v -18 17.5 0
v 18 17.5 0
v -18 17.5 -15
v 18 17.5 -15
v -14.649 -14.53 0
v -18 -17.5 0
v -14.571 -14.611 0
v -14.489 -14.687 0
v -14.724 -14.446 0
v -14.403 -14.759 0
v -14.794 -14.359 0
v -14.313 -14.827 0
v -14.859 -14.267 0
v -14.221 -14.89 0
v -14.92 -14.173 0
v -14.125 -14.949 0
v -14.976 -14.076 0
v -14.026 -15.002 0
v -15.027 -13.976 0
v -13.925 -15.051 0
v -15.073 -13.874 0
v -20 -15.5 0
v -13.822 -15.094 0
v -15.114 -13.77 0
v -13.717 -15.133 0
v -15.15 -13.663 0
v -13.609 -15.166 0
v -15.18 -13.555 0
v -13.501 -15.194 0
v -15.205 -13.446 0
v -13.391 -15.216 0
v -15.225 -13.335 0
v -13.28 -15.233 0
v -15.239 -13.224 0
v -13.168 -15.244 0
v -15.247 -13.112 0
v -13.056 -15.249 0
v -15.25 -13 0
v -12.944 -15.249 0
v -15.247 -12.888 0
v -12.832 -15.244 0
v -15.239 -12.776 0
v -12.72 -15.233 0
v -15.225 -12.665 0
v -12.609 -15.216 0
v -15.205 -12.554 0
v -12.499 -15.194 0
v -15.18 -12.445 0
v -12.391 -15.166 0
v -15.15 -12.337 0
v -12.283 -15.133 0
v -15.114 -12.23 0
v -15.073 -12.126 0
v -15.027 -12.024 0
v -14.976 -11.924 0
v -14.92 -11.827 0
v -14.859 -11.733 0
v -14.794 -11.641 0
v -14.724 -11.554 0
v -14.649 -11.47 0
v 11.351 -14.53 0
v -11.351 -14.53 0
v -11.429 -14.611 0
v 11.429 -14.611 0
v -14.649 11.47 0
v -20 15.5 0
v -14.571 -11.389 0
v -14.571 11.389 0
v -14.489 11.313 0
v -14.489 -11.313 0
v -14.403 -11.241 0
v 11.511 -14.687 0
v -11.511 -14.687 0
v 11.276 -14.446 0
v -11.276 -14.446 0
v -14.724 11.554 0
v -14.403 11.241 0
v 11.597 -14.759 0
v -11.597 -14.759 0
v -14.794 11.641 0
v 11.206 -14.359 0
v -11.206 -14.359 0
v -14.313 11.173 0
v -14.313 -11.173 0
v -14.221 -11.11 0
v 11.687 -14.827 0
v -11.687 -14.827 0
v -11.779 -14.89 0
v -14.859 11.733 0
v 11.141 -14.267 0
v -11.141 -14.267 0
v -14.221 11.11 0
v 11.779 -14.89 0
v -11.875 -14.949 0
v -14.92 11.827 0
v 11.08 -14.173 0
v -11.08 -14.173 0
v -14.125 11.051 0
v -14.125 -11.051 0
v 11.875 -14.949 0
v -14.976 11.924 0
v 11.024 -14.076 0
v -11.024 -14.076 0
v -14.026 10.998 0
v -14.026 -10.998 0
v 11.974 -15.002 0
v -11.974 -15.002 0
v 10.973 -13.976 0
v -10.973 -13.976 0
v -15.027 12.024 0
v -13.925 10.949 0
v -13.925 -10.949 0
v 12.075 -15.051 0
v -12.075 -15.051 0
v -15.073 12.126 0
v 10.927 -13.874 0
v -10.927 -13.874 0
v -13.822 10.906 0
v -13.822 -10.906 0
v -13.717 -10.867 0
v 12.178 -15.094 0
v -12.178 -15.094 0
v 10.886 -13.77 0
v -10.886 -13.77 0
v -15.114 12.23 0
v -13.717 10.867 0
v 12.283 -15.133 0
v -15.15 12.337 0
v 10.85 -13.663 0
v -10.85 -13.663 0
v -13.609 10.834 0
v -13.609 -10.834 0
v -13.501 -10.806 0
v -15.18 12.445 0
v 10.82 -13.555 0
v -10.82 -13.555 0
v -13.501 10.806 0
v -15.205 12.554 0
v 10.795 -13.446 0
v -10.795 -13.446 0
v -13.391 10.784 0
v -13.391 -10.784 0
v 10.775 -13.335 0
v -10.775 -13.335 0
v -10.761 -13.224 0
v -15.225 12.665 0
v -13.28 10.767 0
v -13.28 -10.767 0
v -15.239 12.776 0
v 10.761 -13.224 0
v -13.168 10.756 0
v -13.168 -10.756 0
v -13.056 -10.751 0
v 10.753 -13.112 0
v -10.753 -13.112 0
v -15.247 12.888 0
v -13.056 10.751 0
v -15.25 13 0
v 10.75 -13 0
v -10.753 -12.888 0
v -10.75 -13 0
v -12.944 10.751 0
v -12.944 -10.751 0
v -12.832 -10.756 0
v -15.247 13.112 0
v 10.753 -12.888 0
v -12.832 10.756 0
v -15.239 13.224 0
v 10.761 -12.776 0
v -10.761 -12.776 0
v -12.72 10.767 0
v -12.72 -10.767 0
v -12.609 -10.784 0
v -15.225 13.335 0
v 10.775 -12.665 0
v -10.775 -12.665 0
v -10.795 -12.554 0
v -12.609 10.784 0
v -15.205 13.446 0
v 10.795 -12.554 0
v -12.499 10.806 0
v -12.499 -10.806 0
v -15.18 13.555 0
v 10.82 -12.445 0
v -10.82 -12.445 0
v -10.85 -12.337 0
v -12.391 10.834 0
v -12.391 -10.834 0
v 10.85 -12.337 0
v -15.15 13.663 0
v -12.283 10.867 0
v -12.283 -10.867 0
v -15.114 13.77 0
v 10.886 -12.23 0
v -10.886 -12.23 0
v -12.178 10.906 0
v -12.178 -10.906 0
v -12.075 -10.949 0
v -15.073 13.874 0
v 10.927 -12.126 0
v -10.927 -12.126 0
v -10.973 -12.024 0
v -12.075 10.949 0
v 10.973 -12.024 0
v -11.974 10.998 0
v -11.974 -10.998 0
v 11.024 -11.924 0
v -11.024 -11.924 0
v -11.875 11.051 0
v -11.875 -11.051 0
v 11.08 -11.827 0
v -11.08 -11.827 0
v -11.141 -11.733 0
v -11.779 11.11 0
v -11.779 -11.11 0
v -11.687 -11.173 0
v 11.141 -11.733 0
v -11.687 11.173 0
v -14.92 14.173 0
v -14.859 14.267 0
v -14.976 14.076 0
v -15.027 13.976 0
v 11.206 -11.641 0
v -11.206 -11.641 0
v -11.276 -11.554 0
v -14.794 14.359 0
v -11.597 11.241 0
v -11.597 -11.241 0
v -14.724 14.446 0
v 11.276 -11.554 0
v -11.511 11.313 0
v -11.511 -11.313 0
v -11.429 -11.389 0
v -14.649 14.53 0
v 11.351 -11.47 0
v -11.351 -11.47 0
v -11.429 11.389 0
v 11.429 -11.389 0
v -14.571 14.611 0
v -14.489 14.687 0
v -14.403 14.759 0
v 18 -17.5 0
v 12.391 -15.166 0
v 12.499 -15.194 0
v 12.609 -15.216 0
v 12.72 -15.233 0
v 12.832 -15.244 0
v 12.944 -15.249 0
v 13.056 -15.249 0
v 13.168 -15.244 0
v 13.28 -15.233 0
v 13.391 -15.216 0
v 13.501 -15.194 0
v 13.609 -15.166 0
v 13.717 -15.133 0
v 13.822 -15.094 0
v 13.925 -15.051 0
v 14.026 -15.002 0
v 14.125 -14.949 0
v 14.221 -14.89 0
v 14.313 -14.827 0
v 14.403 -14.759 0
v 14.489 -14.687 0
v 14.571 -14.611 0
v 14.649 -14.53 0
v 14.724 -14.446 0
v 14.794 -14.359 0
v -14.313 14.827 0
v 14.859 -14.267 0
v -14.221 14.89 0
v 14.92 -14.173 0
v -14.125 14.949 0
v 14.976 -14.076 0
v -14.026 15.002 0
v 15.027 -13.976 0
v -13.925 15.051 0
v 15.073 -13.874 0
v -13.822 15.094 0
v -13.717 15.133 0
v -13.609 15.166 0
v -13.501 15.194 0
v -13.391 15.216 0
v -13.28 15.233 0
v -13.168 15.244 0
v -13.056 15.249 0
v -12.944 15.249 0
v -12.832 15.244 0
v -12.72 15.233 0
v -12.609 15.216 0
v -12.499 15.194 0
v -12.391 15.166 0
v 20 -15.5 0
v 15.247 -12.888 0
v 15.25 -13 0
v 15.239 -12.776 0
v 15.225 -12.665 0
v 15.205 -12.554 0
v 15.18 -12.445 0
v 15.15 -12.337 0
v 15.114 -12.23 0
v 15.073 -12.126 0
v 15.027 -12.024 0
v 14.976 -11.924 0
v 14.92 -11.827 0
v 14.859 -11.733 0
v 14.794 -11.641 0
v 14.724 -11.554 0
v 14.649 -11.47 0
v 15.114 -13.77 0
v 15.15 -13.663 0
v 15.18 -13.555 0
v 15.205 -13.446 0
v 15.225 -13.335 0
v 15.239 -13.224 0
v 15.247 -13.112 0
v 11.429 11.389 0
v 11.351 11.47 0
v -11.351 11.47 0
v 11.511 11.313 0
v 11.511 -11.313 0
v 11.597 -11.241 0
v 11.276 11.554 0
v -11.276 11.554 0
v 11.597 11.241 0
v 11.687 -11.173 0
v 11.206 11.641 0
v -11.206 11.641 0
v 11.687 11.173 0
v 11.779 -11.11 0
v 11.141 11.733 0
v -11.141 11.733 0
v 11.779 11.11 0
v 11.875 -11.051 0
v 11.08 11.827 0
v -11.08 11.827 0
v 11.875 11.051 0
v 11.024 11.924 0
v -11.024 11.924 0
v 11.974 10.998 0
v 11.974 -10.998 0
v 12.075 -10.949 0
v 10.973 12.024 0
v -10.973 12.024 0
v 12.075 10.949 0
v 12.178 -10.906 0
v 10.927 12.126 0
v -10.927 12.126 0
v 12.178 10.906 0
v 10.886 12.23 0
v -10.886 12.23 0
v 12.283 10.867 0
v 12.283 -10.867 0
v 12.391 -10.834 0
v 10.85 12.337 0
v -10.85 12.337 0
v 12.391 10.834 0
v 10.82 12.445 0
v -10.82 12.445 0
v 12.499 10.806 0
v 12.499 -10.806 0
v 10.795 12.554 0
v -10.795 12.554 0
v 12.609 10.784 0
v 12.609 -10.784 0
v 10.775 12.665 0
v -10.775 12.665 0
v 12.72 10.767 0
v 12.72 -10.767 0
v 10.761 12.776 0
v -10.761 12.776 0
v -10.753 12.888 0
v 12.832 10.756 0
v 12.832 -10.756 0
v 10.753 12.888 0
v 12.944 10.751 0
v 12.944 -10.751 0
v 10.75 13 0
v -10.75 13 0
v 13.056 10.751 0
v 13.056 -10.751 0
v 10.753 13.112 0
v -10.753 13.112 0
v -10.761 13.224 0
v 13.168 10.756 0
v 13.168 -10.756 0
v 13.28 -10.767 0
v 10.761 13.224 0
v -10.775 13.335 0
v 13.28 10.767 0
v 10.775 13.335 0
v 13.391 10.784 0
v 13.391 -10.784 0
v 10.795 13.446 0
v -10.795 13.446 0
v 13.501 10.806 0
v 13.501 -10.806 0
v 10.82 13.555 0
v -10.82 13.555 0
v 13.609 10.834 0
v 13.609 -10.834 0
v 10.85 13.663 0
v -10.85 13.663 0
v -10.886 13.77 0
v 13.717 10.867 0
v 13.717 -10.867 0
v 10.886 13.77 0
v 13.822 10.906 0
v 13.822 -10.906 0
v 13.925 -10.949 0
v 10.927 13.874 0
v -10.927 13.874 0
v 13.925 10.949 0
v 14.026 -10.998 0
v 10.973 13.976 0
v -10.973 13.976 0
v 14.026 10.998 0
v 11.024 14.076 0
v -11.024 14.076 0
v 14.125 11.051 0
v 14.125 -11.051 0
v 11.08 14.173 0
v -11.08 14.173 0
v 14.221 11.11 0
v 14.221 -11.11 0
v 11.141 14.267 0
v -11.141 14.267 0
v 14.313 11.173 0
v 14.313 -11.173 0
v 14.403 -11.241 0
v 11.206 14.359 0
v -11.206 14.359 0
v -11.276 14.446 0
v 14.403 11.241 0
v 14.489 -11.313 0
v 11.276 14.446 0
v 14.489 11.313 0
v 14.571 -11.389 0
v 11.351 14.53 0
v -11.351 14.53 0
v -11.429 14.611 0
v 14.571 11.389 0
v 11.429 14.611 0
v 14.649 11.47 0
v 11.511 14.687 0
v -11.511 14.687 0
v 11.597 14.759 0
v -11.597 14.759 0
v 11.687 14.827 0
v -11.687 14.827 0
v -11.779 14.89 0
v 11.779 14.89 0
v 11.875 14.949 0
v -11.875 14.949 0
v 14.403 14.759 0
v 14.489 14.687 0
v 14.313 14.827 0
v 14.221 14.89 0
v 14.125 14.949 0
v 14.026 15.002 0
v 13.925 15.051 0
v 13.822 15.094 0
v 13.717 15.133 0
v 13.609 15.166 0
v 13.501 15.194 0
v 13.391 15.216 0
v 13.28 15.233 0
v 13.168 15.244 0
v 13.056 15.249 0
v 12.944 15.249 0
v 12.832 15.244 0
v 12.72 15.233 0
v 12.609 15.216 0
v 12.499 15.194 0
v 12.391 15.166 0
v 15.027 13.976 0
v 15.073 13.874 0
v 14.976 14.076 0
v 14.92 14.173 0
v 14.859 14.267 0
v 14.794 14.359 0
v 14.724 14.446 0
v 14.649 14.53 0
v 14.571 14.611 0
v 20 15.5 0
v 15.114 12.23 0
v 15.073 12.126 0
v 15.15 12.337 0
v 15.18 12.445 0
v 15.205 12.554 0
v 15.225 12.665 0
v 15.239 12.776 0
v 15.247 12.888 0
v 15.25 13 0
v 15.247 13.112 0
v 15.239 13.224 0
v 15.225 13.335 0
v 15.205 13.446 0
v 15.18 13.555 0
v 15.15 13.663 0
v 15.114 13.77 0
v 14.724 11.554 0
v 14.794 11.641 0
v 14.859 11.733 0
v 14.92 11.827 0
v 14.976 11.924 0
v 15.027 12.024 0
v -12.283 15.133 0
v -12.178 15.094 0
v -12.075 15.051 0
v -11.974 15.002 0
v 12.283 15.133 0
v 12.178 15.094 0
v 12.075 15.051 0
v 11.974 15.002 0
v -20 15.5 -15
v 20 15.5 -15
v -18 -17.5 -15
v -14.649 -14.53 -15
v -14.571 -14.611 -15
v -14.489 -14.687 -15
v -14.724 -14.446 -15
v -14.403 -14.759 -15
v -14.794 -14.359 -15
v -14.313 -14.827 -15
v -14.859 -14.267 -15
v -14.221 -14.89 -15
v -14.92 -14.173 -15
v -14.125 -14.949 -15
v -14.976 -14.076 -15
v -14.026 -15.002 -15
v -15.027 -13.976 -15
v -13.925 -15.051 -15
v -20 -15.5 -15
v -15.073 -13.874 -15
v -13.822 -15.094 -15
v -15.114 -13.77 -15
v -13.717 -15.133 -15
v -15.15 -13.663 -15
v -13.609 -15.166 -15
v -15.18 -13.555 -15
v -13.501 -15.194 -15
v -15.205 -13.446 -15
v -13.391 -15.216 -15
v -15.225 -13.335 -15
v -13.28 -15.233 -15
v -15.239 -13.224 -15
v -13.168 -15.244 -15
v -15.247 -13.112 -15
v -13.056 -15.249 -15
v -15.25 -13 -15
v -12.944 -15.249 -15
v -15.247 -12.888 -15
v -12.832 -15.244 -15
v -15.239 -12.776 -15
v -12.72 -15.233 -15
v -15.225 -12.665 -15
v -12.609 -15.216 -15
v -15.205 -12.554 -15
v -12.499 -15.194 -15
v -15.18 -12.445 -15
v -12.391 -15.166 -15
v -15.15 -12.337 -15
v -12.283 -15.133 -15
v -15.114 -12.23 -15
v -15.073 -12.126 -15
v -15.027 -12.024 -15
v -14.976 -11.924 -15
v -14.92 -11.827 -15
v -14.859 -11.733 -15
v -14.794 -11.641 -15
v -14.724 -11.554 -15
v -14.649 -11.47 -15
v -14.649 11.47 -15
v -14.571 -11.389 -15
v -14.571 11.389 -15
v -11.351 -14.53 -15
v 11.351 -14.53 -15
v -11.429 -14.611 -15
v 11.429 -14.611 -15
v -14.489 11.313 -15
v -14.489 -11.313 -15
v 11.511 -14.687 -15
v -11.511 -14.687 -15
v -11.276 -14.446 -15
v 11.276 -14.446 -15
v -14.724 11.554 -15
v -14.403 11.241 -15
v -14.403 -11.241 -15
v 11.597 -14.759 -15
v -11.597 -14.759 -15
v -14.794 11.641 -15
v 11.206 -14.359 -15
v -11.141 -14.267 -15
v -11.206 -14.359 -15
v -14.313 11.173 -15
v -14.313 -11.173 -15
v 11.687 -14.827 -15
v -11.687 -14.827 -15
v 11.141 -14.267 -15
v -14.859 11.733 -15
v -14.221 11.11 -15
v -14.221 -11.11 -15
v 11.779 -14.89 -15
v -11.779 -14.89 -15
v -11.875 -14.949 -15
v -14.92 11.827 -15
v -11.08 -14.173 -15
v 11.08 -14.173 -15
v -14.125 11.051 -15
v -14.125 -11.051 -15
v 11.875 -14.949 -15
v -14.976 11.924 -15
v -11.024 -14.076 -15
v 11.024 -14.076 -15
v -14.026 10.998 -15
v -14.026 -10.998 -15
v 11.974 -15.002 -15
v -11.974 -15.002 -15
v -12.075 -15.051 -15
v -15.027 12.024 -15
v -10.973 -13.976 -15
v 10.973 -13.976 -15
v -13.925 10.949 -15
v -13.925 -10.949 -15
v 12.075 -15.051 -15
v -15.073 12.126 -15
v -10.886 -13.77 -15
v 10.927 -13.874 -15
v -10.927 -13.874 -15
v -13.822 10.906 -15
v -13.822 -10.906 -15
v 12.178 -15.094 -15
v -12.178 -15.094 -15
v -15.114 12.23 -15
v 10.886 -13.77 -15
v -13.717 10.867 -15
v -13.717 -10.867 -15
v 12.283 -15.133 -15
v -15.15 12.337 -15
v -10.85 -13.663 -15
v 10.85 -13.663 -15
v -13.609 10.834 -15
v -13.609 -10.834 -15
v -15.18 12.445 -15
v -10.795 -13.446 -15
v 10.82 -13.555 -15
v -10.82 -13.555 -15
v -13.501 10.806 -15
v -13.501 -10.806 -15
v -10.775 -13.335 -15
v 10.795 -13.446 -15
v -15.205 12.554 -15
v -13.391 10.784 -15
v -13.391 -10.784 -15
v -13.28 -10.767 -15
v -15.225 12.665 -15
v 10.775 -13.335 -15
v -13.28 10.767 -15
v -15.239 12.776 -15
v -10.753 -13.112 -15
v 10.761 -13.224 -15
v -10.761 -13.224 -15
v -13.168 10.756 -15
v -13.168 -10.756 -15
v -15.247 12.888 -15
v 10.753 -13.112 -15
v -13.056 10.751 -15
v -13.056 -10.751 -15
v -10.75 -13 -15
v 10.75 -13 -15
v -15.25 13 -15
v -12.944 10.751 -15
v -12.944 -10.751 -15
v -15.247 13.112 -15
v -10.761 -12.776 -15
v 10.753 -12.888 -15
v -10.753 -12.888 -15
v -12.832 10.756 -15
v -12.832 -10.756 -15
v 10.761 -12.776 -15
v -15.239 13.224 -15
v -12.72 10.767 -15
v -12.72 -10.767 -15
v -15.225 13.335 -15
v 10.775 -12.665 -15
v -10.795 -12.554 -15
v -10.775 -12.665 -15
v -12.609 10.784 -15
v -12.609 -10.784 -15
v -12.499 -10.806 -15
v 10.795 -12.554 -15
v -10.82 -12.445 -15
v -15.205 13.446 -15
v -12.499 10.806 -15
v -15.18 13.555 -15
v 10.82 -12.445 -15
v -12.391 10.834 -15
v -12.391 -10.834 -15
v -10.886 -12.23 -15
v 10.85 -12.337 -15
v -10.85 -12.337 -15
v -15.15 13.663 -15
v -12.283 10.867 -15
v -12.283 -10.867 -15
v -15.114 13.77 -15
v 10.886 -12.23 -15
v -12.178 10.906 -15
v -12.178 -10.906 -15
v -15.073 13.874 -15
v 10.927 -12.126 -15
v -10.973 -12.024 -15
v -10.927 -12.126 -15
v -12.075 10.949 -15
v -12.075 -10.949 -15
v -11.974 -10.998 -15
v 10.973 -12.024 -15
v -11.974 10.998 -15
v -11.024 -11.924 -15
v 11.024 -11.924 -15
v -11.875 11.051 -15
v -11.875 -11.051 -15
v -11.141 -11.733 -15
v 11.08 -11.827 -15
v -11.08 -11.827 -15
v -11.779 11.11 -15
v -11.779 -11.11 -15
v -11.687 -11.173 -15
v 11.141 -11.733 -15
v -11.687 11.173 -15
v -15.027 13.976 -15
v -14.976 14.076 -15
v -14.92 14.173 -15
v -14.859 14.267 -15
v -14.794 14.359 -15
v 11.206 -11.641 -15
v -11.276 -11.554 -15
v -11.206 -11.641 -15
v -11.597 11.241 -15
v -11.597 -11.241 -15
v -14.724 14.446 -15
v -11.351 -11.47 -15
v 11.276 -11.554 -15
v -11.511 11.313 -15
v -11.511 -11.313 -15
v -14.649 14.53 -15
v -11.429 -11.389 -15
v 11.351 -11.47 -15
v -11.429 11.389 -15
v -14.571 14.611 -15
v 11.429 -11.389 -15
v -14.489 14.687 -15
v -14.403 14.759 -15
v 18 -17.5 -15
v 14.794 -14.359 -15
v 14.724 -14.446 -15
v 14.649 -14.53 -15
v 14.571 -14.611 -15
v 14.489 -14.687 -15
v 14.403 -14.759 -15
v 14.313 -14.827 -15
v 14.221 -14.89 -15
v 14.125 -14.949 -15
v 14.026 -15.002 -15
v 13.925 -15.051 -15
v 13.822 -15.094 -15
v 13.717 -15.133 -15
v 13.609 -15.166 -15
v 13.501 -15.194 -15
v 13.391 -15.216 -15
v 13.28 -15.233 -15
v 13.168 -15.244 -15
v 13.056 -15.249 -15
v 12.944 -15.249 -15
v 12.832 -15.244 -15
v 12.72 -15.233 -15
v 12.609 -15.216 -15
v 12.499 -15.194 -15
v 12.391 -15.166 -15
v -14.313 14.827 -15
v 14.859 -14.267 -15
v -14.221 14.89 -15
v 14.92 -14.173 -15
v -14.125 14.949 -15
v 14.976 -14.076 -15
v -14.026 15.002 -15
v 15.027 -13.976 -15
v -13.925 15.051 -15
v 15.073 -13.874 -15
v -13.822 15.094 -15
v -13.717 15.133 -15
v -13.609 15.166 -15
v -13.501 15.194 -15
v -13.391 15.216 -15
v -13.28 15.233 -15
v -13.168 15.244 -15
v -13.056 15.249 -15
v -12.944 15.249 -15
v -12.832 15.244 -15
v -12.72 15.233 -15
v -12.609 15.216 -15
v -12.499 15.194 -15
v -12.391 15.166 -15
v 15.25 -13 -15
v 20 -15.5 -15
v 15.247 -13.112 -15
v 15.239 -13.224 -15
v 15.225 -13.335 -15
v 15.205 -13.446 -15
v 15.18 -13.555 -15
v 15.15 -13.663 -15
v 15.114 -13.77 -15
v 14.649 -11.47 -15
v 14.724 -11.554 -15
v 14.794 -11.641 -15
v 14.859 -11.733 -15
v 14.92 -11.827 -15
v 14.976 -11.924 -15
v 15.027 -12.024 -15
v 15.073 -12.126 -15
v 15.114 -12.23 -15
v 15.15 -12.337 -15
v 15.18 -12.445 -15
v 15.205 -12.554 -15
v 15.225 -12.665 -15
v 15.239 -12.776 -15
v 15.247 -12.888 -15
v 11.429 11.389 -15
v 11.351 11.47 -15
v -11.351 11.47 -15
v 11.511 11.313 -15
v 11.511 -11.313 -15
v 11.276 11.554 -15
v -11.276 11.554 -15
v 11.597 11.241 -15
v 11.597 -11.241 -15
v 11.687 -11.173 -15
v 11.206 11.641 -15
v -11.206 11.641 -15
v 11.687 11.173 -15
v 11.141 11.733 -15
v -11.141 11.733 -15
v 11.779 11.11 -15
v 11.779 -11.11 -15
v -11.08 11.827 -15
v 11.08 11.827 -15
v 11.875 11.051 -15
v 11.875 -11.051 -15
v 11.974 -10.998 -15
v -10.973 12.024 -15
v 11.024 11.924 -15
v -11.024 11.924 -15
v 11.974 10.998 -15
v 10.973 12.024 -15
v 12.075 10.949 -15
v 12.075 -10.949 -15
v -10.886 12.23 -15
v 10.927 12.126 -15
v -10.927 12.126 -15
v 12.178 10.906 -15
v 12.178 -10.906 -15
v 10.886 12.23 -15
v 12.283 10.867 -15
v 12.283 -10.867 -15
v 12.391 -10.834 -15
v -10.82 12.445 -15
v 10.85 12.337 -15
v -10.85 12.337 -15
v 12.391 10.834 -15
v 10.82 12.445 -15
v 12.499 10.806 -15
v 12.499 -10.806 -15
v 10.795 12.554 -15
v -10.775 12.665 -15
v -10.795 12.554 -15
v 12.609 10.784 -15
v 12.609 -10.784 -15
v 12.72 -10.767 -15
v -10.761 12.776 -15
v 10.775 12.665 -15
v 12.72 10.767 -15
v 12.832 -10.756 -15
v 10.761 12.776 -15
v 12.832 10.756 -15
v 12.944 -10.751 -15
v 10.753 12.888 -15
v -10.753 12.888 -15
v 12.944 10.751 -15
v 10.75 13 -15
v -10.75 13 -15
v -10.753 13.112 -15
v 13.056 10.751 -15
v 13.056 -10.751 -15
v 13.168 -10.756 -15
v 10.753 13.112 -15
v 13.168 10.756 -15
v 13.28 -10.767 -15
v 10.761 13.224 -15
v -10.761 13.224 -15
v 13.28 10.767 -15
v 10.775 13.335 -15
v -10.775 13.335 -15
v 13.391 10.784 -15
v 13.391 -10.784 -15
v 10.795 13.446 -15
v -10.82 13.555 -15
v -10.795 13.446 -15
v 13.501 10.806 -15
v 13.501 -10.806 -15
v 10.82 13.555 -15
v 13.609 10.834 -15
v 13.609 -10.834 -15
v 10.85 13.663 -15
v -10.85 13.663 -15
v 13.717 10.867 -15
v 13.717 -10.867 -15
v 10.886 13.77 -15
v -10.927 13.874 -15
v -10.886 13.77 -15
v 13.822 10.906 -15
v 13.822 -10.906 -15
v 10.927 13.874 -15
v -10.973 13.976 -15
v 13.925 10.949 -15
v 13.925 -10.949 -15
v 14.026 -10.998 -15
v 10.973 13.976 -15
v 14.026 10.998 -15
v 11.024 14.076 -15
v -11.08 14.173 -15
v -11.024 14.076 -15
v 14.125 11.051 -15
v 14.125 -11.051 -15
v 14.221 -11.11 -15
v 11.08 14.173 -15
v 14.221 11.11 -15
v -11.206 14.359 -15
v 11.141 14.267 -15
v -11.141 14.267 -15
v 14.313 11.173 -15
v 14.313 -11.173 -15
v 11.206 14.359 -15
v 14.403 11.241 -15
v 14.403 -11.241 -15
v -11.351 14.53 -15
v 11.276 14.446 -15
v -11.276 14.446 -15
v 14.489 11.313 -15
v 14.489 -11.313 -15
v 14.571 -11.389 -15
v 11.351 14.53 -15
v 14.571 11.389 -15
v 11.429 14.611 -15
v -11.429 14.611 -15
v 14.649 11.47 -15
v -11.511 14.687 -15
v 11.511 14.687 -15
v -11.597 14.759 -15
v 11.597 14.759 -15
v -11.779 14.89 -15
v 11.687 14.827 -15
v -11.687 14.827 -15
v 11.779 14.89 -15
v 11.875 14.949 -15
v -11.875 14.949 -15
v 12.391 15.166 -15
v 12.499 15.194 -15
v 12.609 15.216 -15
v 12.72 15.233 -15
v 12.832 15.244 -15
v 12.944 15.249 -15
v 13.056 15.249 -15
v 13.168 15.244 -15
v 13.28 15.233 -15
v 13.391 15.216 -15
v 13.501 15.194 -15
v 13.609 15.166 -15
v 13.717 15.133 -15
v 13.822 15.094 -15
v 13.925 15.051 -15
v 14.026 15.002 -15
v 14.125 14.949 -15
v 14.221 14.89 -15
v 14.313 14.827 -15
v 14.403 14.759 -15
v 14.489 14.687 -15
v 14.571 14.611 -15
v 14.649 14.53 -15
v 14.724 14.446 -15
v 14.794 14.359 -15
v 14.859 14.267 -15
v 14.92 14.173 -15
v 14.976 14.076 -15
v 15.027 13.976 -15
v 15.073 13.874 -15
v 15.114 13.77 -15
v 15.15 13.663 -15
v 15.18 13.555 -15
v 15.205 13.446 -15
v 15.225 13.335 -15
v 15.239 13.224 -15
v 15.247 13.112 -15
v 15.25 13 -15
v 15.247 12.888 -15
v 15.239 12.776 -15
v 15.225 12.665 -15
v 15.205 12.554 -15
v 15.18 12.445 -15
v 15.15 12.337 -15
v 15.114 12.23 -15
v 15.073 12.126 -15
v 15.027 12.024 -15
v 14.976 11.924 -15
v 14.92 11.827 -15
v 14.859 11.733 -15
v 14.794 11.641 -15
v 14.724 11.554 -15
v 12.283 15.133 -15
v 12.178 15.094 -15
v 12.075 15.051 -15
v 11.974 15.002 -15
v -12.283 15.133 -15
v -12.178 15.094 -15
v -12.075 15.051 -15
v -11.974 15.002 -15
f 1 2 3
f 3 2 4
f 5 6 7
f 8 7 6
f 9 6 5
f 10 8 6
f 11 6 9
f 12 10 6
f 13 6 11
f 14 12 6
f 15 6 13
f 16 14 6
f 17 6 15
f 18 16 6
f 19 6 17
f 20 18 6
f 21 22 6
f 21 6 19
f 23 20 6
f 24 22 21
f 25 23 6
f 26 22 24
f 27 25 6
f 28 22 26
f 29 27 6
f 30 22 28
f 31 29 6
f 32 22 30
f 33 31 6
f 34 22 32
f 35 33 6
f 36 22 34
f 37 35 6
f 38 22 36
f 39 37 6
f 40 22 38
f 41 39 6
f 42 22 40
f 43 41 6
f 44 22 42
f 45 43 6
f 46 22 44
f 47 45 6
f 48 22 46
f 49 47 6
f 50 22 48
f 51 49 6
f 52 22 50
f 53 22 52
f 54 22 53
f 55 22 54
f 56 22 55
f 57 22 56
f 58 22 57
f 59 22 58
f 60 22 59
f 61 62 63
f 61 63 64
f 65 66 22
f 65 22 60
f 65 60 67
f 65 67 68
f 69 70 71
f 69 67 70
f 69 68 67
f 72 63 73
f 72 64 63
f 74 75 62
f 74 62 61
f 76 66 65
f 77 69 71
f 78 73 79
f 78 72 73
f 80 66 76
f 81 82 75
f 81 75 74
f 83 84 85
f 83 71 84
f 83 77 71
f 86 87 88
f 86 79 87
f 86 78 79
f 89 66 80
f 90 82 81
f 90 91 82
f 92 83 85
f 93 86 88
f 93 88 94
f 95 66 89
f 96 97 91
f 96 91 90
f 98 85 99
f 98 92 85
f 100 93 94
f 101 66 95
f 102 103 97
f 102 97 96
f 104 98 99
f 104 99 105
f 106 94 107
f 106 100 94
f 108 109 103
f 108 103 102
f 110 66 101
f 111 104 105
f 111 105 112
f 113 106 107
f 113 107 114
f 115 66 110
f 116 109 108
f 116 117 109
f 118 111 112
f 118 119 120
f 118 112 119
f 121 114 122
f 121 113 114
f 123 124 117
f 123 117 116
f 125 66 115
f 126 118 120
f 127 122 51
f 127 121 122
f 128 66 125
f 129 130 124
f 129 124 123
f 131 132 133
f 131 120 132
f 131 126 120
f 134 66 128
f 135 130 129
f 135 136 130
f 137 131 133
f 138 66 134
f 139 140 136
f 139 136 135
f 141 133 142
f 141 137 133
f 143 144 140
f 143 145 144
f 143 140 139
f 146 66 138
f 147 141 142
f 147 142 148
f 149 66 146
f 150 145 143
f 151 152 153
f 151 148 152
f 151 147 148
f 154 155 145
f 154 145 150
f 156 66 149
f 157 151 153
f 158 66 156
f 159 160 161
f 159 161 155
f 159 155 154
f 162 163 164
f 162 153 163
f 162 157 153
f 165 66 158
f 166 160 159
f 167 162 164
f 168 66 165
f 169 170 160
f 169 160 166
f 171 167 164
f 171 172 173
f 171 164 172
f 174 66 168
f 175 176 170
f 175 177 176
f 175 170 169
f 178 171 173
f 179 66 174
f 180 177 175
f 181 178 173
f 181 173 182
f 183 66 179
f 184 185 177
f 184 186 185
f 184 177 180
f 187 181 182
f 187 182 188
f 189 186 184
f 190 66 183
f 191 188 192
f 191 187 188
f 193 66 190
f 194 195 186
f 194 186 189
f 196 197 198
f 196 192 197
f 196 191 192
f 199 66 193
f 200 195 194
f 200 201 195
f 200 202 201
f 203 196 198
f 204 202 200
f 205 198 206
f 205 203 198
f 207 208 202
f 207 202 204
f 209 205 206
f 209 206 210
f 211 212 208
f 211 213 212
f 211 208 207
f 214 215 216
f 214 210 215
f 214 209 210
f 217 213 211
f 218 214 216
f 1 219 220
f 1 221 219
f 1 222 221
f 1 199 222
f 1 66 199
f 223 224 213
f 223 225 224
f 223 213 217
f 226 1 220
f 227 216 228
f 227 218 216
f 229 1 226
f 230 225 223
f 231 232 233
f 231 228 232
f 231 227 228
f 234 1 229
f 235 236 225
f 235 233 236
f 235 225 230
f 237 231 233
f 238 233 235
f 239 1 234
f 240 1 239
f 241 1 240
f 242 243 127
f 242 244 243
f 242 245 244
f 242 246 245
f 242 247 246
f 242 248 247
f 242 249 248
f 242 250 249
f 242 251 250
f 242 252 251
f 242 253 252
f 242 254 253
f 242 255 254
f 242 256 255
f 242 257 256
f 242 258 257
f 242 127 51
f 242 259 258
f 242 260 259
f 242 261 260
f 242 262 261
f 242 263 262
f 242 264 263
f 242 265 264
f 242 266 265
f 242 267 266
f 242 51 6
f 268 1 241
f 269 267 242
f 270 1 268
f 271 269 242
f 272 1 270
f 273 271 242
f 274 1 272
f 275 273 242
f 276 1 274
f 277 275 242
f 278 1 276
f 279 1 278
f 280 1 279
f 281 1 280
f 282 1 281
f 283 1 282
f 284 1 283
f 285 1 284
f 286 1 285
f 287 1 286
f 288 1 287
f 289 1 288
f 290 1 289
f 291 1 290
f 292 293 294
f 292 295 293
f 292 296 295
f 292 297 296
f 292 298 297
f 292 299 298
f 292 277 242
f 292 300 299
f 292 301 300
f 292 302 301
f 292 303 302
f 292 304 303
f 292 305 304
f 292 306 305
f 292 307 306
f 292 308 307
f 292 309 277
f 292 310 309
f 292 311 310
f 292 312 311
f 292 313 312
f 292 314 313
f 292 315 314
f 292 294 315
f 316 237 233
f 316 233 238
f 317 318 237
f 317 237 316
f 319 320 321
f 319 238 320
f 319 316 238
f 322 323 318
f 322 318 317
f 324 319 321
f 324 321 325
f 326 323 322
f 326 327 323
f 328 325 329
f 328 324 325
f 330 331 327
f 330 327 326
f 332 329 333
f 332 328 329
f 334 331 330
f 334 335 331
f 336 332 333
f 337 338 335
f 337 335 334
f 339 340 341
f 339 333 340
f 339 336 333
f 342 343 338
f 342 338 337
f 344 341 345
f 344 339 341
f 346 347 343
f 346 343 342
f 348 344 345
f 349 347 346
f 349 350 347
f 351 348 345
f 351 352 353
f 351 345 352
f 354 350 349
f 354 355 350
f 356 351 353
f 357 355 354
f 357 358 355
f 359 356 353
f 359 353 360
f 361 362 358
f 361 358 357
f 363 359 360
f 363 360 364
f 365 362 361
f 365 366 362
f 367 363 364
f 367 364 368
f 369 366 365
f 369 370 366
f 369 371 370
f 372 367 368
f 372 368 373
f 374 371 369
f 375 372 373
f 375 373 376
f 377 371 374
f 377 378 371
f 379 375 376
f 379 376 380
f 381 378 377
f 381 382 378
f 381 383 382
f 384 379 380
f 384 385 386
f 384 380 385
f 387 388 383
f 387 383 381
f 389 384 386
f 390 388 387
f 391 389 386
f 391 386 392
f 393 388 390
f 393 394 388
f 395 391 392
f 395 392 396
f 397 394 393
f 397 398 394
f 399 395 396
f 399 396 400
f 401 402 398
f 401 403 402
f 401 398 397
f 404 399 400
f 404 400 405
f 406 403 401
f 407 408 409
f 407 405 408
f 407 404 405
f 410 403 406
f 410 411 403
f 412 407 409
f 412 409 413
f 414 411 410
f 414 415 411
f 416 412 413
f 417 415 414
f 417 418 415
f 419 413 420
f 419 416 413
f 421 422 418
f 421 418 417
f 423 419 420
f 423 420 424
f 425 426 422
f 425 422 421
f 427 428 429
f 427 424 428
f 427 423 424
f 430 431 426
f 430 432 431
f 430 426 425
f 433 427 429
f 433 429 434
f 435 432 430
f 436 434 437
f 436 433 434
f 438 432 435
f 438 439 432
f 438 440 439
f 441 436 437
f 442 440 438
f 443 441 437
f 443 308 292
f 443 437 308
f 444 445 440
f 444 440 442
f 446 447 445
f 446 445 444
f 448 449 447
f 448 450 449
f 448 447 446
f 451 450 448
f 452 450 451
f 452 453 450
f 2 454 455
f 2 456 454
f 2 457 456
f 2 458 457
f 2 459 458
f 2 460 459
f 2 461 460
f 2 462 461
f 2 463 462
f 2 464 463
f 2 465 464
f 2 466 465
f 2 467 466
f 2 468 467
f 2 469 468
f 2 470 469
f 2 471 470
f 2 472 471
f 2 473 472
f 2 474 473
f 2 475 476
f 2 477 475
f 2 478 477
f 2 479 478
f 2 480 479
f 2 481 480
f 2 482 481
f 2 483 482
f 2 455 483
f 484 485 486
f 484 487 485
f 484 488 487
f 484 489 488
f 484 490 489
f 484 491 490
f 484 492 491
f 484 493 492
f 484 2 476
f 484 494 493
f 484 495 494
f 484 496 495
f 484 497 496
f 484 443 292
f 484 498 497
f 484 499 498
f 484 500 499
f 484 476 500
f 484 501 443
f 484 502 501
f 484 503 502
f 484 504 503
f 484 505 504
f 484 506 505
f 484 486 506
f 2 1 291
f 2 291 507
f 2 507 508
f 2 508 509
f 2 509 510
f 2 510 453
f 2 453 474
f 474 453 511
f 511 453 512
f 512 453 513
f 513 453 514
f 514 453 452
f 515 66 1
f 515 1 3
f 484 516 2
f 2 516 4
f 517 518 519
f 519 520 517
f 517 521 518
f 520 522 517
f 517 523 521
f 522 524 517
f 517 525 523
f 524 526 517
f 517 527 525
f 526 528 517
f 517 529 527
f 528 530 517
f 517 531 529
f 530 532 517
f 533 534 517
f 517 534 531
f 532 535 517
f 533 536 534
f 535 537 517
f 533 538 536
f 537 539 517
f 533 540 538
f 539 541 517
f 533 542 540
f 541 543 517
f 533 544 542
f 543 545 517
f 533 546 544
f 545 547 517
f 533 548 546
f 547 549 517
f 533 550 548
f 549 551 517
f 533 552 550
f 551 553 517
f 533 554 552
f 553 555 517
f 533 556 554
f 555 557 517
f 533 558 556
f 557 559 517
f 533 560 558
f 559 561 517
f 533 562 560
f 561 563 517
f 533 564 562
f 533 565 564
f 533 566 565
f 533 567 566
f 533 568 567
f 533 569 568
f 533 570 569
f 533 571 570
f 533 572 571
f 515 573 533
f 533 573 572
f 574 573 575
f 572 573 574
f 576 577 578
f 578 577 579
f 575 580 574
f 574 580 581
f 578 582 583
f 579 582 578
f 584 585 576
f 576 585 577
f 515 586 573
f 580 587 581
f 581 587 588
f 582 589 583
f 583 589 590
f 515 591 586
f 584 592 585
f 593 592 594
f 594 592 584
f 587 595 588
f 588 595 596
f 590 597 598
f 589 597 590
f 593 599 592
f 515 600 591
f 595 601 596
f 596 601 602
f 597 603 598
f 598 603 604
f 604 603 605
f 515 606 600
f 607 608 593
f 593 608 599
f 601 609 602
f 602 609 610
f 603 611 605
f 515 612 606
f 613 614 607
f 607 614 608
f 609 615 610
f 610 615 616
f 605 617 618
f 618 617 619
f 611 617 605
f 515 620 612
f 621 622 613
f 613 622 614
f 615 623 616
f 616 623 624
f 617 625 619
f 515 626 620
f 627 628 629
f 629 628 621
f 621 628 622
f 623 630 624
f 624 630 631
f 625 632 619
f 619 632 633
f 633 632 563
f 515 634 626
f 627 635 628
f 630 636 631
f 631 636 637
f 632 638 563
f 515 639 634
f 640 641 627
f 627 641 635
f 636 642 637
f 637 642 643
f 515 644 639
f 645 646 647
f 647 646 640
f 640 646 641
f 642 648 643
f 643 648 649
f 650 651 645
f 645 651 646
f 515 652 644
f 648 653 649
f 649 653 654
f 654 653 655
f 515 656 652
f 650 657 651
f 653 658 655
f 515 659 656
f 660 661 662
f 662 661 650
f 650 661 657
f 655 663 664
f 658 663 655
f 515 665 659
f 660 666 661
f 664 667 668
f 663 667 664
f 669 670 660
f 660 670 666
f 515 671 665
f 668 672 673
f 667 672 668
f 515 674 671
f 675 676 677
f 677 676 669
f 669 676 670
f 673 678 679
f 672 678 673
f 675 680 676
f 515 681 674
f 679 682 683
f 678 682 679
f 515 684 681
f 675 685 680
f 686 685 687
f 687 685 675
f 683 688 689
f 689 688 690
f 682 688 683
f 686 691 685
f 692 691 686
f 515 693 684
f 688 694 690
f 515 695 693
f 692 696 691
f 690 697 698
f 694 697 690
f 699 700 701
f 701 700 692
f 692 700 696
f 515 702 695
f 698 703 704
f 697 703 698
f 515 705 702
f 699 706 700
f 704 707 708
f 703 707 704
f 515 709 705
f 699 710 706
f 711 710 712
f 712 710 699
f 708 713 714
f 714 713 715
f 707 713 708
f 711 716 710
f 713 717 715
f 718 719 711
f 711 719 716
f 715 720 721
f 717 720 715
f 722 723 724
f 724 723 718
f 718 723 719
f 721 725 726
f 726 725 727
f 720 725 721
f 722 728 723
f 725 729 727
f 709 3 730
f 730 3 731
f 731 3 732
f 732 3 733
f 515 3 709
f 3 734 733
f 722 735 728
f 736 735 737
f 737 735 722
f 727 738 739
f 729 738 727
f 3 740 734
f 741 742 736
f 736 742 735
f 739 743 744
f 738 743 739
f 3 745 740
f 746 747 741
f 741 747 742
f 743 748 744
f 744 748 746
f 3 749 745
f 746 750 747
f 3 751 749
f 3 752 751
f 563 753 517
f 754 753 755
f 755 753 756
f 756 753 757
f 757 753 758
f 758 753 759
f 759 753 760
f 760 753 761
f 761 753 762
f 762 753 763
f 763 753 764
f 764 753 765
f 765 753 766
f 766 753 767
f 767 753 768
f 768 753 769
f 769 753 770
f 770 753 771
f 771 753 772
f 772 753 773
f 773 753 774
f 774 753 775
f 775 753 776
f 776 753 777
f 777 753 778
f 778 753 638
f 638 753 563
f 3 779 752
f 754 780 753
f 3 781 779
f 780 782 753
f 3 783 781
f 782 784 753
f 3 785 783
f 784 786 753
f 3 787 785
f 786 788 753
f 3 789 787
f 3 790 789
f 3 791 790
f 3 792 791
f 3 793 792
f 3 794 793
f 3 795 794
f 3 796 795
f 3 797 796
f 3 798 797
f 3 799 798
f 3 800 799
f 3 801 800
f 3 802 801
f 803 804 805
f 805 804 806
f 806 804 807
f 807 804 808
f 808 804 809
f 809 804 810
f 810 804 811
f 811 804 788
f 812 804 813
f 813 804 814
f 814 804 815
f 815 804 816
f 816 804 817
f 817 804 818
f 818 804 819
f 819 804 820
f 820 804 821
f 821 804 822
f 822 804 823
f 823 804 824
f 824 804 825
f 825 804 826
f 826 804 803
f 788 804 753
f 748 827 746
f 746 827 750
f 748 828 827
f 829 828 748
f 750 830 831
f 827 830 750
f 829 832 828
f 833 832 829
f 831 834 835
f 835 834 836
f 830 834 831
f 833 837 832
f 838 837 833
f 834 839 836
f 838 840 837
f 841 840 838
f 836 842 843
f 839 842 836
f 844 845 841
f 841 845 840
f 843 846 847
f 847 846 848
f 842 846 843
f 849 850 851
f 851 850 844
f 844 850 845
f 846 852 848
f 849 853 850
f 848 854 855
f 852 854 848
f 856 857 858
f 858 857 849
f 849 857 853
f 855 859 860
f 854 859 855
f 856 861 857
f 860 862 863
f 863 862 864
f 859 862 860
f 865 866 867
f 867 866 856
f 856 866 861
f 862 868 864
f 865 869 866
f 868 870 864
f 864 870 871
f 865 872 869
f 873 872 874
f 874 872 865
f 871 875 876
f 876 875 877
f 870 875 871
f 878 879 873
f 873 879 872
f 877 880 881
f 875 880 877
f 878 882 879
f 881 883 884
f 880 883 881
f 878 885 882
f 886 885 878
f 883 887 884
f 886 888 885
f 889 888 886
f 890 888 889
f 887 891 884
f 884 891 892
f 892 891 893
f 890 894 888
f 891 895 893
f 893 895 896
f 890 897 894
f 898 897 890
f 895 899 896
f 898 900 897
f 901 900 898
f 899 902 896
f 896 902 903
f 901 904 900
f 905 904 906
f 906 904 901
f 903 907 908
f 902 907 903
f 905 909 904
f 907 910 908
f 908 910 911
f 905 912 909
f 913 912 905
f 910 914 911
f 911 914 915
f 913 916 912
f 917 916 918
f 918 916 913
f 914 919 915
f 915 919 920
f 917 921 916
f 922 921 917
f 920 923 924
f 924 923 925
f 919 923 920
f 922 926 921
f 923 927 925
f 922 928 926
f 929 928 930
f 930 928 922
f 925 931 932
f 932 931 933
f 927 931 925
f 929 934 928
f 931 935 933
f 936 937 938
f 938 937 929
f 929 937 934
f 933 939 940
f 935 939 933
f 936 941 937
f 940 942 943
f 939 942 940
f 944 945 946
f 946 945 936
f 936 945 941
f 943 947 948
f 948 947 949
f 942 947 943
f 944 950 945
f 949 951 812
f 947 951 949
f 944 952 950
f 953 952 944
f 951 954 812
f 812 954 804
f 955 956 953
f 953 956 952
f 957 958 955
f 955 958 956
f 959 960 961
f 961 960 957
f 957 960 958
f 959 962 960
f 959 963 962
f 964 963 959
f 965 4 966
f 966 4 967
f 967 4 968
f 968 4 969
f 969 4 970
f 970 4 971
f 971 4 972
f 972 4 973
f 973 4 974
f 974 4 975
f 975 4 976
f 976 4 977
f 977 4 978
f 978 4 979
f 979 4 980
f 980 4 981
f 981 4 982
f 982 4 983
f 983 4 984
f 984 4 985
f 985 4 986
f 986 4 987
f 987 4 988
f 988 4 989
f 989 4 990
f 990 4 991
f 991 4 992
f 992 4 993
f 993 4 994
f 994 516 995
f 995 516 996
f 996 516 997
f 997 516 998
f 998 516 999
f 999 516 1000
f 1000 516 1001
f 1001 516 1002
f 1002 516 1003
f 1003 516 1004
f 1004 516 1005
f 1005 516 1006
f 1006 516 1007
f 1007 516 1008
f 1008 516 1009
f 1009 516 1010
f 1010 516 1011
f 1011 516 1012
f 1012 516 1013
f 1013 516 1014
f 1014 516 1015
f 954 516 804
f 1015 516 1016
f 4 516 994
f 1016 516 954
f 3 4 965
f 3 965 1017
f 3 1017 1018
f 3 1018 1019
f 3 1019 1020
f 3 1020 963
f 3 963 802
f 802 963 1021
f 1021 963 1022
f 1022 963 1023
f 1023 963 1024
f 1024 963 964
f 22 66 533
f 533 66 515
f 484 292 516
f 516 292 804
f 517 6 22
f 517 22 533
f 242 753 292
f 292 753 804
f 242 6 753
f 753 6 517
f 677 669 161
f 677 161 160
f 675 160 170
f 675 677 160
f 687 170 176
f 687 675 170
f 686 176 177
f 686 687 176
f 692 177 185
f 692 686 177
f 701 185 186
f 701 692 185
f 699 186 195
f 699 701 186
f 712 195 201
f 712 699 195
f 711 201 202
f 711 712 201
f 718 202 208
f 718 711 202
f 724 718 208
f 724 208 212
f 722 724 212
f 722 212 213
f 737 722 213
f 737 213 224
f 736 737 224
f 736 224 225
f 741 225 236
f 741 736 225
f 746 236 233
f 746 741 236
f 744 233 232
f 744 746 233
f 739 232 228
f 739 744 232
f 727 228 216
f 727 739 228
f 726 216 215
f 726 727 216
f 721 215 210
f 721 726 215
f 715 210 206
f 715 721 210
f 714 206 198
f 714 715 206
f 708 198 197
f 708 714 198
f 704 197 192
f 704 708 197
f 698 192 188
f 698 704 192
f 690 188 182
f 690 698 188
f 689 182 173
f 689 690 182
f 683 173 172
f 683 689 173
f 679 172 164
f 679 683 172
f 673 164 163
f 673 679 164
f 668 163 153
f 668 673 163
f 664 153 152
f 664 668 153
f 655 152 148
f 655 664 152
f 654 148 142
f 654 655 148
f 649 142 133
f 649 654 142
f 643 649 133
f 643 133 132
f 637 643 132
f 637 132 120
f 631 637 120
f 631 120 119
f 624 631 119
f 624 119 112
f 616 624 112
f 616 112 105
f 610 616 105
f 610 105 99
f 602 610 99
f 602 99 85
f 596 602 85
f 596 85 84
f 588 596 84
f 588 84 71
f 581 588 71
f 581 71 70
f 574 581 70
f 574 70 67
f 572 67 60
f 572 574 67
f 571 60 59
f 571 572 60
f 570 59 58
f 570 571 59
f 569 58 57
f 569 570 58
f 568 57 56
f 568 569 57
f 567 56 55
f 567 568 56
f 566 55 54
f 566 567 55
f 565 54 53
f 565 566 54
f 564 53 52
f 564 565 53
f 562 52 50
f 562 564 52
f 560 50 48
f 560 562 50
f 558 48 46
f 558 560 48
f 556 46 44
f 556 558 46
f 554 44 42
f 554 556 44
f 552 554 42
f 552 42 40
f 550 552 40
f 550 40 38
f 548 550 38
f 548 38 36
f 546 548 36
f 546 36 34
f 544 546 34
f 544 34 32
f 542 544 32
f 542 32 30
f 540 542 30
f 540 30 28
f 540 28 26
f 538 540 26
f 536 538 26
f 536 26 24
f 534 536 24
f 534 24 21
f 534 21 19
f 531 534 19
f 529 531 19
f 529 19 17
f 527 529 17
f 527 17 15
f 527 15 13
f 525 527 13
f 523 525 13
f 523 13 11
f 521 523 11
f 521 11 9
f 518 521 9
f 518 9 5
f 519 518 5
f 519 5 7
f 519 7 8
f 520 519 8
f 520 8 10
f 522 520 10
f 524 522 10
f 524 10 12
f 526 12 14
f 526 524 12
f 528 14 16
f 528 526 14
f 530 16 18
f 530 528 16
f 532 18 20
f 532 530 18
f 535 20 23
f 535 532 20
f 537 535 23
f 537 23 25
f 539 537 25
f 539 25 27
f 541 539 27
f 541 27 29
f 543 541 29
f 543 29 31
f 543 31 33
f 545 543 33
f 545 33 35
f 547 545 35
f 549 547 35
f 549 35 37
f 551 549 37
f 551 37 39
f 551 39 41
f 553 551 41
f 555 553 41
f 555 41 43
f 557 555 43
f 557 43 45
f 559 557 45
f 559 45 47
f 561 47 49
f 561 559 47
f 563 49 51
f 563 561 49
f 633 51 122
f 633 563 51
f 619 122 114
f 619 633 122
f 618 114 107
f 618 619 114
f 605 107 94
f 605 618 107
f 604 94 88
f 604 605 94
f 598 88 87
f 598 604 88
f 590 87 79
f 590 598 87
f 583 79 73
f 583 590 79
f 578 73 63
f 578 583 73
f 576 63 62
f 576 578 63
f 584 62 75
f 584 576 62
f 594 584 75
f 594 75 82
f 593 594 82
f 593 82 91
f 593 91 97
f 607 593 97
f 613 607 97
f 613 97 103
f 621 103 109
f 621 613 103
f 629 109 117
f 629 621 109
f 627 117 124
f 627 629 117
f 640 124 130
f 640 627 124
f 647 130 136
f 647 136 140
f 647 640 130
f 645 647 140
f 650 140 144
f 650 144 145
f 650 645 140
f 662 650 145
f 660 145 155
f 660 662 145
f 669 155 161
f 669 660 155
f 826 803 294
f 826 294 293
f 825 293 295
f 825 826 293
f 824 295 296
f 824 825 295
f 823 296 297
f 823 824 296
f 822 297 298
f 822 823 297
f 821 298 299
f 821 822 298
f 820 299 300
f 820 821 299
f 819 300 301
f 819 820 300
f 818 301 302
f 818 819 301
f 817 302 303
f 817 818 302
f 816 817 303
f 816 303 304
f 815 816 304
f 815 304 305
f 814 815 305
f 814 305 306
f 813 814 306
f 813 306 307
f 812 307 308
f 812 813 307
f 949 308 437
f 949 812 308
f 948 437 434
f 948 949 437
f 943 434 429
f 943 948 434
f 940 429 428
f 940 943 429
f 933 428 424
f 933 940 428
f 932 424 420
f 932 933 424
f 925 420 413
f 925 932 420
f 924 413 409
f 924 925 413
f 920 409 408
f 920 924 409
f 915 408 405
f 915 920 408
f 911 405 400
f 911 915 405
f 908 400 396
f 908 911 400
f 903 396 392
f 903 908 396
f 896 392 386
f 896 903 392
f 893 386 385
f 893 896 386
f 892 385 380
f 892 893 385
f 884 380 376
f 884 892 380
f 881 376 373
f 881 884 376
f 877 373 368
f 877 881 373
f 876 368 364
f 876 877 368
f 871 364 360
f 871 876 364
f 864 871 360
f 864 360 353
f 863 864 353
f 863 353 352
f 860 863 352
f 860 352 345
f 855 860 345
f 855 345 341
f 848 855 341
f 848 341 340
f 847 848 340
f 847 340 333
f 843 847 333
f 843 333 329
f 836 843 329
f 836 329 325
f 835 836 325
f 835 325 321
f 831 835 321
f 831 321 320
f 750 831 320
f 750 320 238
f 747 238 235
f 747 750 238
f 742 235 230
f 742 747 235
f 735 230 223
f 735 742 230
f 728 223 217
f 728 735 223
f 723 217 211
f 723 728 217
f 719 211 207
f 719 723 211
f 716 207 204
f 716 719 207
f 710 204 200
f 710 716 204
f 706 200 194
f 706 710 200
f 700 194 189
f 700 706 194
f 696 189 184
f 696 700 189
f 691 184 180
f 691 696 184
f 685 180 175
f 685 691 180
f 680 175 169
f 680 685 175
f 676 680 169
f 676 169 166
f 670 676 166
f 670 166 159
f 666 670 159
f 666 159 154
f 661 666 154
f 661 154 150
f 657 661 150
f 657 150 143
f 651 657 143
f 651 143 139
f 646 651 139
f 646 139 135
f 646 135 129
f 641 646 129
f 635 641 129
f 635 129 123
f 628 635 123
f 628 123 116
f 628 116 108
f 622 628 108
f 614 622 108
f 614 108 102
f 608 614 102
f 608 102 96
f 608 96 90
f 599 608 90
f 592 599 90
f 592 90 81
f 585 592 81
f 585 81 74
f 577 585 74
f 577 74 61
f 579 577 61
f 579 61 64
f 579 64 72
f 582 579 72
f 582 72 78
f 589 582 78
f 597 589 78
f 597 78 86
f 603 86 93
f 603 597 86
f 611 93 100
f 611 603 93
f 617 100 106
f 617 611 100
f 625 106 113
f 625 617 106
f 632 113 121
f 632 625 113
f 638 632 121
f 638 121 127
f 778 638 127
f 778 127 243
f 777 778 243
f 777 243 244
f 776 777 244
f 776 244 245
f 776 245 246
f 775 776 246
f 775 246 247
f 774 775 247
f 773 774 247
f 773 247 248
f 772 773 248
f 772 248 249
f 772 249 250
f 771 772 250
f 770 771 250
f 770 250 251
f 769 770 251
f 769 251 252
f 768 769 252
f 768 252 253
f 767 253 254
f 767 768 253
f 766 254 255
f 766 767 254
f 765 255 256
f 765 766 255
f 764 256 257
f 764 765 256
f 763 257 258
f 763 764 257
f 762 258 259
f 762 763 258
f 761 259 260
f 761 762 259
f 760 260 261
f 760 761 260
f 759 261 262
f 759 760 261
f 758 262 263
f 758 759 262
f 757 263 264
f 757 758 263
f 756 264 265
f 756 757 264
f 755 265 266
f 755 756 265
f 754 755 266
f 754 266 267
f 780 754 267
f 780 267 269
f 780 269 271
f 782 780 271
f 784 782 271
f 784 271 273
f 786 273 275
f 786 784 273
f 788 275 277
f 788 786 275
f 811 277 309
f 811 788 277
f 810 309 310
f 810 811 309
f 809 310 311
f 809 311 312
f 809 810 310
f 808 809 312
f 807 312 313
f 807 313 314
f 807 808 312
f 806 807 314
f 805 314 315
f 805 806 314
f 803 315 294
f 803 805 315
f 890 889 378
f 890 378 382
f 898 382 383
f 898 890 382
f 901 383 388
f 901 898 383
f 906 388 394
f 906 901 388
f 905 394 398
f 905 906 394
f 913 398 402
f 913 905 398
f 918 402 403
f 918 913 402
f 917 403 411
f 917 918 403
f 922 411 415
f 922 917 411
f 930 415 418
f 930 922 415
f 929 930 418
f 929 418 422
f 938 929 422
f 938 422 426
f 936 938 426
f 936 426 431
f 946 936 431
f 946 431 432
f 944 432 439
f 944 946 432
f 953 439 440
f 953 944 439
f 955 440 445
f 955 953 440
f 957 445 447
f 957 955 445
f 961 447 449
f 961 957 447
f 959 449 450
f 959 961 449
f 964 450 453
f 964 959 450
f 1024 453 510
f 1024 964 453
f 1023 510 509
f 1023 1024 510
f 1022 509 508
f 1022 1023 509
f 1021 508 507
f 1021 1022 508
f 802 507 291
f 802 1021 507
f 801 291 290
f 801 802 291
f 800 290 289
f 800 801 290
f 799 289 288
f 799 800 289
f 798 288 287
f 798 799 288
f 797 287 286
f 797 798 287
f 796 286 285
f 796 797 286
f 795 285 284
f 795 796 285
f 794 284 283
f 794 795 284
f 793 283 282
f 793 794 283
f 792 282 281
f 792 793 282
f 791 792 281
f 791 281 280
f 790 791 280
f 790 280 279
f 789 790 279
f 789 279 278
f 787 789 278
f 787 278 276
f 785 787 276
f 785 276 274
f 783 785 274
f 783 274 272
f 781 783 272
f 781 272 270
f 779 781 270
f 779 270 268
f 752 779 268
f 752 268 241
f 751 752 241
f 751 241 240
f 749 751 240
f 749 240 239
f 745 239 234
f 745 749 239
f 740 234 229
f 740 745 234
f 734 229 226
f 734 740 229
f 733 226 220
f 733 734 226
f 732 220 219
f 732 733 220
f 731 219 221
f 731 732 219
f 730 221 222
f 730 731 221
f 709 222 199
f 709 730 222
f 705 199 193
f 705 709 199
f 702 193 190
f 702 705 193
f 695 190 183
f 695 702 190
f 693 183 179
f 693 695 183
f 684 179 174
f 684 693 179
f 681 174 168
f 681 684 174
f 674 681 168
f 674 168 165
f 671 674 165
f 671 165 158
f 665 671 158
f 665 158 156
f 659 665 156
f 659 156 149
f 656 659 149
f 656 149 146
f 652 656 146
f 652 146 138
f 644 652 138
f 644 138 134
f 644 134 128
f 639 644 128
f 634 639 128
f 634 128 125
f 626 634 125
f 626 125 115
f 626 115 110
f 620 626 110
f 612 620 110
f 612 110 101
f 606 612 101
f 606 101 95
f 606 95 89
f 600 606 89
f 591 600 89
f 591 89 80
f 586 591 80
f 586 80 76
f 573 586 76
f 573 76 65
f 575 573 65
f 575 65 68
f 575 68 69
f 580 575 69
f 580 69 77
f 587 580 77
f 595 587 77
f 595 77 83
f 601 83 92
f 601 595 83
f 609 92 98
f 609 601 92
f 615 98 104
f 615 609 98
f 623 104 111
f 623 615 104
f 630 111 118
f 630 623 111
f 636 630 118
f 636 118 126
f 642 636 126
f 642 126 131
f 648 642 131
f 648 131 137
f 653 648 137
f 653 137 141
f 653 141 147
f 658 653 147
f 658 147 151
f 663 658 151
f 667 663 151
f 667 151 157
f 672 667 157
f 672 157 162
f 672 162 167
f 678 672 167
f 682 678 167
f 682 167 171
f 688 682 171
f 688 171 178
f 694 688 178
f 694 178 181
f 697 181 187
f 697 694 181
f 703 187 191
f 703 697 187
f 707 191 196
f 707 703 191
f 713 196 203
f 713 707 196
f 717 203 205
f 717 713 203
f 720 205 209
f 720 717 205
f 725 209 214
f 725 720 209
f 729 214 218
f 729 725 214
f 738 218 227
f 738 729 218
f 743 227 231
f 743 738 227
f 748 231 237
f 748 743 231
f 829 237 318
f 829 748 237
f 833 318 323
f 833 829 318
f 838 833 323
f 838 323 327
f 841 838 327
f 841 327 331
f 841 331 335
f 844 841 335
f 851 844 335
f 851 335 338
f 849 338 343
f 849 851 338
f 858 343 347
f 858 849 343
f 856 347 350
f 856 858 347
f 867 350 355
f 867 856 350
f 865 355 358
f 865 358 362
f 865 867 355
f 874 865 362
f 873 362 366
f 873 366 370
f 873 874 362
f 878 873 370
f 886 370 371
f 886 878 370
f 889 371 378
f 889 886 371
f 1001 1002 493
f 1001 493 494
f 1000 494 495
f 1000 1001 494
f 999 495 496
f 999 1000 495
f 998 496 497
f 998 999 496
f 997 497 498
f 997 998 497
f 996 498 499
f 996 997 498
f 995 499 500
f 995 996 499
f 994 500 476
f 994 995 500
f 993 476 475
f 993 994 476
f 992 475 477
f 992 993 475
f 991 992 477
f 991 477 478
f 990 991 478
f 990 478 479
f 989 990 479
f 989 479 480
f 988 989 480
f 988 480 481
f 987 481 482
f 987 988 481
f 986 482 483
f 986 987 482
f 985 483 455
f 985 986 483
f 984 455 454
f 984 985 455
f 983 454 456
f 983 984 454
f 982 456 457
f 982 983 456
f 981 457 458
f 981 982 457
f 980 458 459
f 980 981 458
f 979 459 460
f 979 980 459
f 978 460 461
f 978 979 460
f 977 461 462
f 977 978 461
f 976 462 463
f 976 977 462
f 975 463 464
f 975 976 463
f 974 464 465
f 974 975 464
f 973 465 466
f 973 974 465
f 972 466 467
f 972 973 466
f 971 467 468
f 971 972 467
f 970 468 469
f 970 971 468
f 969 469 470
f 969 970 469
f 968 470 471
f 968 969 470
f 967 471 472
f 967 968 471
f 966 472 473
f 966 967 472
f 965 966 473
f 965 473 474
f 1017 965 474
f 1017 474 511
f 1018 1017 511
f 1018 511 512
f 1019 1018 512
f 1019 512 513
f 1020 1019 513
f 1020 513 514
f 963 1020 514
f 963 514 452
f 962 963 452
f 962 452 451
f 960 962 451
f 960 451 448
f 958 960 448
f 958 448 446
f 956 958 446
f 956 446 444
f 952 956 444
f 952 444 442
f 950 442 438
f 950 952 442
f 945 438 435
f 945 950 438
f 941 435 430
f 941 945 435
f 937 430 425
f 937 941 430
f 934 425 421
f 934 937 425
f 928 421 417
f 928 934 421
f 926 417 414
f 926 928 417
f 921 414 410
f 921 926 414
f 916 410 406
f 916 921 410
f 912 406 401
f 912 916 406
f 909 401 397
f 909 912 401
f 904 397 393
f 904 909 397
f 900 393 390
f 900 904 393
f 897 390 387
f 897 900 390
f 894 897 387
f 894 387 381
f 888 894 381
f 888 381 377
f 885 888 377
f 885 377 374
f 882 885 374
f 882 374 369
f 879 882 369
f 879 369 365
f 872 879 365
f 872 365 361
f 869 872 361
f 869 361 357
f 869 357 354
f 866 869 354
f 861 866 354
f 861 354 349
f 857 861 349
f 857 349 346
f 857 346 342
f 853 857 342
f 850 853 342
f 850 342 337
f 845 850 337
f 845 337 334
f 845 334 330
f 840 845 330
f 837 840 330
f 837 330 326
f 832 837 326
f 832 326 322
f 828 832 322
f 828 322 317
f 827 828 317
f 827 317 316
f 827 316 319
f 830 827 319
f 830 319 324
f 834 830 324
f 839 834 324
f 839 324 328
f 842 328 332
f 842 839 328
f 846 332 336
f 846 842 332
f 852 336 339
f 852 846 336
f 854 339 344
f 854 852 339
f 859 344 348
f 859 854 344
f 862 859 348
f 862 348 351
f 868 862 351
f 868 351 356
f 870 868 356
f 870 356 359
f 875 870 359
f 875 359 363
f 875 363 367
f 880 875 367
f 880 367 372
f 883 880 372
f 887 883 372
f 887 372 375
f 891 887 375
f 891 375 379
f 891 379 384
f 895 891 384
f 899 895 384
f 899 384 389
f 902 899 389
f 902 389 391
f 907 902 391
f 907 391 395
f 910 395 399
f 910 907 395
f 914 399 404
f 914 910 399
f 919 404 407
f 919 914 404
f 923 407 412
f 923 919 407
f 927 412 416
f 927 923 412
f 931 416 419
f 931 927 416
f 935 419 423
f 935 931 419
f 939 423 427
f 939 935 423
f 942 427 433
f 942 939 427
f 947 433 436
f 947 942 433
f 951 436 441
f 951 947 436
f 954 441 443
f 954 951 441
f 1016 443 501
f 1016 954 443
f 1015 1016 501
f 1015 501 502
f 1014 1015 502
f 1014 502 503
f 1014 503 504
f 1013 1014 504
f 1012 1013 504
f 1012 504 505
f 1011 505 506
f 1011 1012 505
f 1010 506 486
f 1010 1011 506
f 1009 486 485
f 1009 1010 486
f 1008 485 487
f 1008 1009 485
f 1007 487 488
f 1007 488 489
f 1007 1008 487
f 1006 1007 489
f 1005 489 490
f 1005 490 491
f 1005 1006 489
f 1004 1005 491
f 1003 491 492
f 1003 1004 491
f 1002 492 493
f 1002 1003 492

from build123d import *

# Parameters (mm, degrees)
SKETCH_W     = 40
SKETCH_H     = 35
PAD_DEPTH    = 15
SKETCH001_R  = 2.25
HOLE_DEPTH   = 25
CHAMFER_SIZE = 2


with BuildPart() as part:
    # Sketch → Pad (new body)
    with BuildSketch(Plane.XY):
        Rectangle(SKETCH_W, SKETCH_H)
    extrude(amount=-PAD_DEPTH)

    # Sketch001 → Hole (cut)
    with BuildSketch(Plane.XY):
        with Locations((-13, 13)):
            Circle(SKETCH001_R)
        with Locations((13, 13)):
            Circle(SKETCH001_R)
        with Locations((13, -13)):
            Circle(SKETCH001_R)
        with Locations((-13, -13)):
            Circle(SKETCH001_R)
    extrude(amount=-HOLE_DEPTH, mode=Mode.SUBTRACT)

    # Chamfer
    chamfer_edges = [part.edges().sort_by_distance(p)[0] for p in [
        (-20, -17.5, -7.5),
        (20, -17.5, -7.5),
        (-20, 17.5, -7.5),
        (20, 17.5, -7.5),
    ]]
    chamfer(chamfer_edges, length=CHAMFER_SIZE)


solid = part.part
